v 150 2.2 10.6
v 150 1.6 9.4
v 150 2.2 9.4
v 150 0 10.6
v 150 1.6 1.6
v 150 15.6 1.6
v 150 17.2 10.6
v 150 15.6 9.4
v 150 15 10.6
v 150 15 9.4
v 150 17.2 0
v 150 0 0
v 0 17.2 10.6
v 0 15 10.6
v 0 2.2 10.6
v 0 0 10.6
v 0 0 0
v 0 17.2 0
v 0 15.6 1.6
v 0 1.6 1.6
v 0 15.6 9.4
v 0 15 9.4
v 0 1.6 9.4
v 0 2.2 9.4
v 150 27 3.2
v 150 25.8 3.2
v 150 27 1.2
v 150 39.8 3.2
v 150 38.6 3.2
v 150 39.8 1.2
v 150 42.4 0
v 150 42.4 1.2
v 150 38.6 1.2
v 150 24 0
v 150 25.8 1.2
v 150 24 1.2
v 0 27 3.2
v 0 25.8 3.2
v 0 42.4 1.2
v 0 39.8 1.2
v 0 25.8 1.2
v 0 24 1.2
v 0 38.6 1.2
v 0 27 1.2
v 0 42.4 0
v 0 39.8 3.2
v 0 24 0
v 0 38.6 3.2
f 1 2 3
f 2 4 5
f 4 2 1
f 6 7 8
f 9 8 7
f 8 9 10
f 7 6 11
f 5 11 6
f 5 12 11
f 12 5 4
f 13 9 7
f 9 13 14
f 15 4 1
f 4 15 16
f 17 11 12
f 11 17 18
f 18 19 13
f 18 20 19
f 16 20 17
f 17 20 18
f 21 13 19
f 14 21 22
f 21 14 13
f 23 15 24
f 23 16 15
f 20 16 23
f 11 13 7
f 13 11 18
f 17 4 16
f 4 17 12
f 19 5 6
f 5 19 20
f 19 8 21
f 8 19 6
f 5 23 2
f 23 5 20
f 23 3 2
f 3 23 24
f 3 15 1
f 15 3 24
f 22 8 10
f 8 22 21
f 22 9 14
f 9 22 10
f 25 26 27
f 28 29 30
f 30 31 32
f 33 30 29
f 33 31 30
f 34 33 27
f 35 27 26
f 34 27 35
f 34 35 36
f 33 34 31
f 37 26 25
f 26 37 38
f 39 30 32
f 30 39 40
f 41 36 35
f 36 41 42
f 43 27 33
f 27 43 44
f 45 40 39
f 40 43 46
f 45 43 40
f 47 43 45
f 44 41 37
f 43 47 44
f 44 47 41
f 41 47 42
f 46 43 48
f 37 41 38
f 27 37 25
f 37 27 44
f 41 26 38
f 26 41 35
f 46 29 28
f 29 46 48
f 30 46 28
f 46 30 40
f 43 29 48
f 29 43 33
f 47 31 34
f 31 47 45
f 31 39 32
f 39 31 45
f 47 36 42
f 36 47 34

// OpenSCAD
// Cable channel with snap-on lid, glued under/along the base. Print several and chain them.
part = "all";   // "channel" | "lid" | "all"
length = 150; inner_w = 14; inner_h = 9; wall = 1.6;

module channel() {
    difference() {
        cube([length, inner_w + 2 * wall, inner_h + wall]);
        translate([-1, wall, wall]) cube([length + 2, inner_w, inner_h + 1]);
    }
    for (s = [0, 1]) translate([0, s * (inner_w + wall) + (s ? -0.6 : wall), inner_h + wall - 1.2])
        cube([length, 0.6, 1.2]);   // snap lips
}
module lid() {
    cube([length, inner_w + 2 * wall + 1.2, 1.2]);
    for (s = [0, 1]) translate([0, wall + 0.2 + s * (inner_w - 1.2), 1.2]) cube([length, 1.2, 2]);
}
if (part == "channel" || part == "all") channel();
if (part == "lid" || part == "all") translate([0, inner_w + 10, 0]) lid();
